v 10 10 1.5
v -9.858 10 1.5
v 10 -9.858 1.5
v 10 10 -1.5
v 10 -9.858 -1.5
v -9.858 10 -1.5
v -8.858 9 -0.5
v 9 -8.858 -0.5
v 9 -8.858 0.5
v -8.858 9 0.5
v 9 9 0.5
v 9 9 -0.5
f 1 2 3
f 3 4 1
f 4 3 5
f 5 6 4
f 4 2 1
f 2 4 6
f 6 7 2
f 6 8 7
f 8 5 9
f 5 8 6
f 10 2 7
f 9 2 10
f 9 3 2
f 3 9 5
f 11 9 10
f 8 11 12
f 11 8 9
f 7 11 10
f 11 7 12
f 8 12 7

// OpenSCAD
// Kantenschutz

module Dreieck() {

    difference(){
        cube([20,20,3],center=true);
        translate([-8,-6,0])
        rotate([0,0,45])
        cube([20,40,5],center=true);
        
    }
};
difference() {
    Dreieck();
    translate([-1,-1,0])
    cube([20,20,1],center=true);
}
